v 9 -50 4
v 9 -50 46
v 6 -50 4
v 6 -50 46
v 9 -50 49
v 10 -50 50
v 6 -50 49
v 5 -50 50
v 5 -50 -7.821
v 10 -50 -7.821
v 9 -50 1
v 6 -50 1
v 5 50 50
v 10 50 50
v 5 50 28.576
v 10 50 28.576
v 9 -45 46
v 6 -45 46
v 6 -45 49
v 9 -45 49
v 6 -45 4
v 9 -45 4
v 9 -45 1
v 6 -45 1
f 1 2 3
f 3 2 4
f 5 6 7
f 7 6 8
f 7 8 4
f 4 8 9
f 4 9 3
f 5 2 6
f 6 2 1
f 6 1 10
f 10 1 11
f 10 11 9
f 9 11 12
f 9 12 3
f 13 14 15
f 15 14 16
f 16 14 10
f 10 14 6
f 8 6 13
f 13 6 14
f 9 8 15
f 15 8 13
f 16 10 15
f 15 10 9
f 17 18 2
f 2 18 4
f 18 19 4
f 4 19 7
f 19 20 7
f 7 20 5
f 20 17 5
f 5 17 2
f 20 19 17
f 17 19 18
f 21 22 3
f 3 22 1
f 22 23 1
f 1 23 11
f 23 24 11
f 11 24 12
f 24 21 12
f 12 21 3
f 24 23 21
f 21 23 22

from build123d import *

# Parameters (mm, degrees)
SKETCH1_W           = 100
SKETCH1_H           = 100
BOSS_EXTRUDE1_DEPTH = 10
CUT_EXTRUDE2_DEPTH  = 5
CUT_EXTRUDE4_DEPTH  = 10
CUT_EXTRUDE5_DEPTH  = 5
SKETCH8_W           = 3
SKETCH8_H           = 3
CUT_EXTRUDE6_DEPTH  = 5


with BuildPart() as part:
    # Sketch1 → Boss-Extrude1 (new body)
    with BuildSketch(Plane(origin=(0, 0, 0), x_dir=(0, 0, -1), z_dir=(1, 0, 0))):
        Rectangle(SKETCH1_W, SKETCH1_H)
    extrude(amount=BOSS_EXTRUDE1_DEPTH)

    # Sketch2 → Cut-Extrude2 (cut)
    with BuildSketch(Plane.ZY):
        Polygon((36.397023427, 50), (33.897023427, 50), (-0.680148829, -45), (4.319851171, -45), (38.897023427, 50), align=None)
    extrude(amount=-CUT_EXTRUDE2_DEPTH, mode=Mode.SUBTRACT)

    # Sketch5 → Cut-Extrude4 (cut)
    with BuildSketch(Plane.ZY):
        Polygon((28.576134564, 50), (-50, 50), (-50, -50), (-7.820888862, -50), (-6.001037691, -45), (26.756283393, 45), align=None)
    extrude(amount=-CUT_EXTRUDE4_DEPTH, mode=Mode.SUBTRACT)

    # Sketch7 → Cut-Extrude5 (cut)
    with BuildSketch(Plane.ZY):
        Polygon((28.576134564, 50), (50, 50), (50, -50), (-7.820888862, -50), align=None)
    extrude(amount=-CUT_EXTRUDE5_DEPTH, mode=Mode.SUBTRACT)

    # Sketch8 → Cut-Extrude6 (cut)
    with BuildSketch(Plane.XZ.offset(50)):
        with Locations((7.5, 47.5)):
            Rectangle(SKETCH8_W, SKETCH8_H)
        with Locations((7.5, 2.5)):
            Rectangle(SKETCH8_W, SKETCH8_H)
    extrude(amount=-CUT_EXTRUDE6_DEPTH, mode=Mode.SUBTRACT)


solid = part.part
